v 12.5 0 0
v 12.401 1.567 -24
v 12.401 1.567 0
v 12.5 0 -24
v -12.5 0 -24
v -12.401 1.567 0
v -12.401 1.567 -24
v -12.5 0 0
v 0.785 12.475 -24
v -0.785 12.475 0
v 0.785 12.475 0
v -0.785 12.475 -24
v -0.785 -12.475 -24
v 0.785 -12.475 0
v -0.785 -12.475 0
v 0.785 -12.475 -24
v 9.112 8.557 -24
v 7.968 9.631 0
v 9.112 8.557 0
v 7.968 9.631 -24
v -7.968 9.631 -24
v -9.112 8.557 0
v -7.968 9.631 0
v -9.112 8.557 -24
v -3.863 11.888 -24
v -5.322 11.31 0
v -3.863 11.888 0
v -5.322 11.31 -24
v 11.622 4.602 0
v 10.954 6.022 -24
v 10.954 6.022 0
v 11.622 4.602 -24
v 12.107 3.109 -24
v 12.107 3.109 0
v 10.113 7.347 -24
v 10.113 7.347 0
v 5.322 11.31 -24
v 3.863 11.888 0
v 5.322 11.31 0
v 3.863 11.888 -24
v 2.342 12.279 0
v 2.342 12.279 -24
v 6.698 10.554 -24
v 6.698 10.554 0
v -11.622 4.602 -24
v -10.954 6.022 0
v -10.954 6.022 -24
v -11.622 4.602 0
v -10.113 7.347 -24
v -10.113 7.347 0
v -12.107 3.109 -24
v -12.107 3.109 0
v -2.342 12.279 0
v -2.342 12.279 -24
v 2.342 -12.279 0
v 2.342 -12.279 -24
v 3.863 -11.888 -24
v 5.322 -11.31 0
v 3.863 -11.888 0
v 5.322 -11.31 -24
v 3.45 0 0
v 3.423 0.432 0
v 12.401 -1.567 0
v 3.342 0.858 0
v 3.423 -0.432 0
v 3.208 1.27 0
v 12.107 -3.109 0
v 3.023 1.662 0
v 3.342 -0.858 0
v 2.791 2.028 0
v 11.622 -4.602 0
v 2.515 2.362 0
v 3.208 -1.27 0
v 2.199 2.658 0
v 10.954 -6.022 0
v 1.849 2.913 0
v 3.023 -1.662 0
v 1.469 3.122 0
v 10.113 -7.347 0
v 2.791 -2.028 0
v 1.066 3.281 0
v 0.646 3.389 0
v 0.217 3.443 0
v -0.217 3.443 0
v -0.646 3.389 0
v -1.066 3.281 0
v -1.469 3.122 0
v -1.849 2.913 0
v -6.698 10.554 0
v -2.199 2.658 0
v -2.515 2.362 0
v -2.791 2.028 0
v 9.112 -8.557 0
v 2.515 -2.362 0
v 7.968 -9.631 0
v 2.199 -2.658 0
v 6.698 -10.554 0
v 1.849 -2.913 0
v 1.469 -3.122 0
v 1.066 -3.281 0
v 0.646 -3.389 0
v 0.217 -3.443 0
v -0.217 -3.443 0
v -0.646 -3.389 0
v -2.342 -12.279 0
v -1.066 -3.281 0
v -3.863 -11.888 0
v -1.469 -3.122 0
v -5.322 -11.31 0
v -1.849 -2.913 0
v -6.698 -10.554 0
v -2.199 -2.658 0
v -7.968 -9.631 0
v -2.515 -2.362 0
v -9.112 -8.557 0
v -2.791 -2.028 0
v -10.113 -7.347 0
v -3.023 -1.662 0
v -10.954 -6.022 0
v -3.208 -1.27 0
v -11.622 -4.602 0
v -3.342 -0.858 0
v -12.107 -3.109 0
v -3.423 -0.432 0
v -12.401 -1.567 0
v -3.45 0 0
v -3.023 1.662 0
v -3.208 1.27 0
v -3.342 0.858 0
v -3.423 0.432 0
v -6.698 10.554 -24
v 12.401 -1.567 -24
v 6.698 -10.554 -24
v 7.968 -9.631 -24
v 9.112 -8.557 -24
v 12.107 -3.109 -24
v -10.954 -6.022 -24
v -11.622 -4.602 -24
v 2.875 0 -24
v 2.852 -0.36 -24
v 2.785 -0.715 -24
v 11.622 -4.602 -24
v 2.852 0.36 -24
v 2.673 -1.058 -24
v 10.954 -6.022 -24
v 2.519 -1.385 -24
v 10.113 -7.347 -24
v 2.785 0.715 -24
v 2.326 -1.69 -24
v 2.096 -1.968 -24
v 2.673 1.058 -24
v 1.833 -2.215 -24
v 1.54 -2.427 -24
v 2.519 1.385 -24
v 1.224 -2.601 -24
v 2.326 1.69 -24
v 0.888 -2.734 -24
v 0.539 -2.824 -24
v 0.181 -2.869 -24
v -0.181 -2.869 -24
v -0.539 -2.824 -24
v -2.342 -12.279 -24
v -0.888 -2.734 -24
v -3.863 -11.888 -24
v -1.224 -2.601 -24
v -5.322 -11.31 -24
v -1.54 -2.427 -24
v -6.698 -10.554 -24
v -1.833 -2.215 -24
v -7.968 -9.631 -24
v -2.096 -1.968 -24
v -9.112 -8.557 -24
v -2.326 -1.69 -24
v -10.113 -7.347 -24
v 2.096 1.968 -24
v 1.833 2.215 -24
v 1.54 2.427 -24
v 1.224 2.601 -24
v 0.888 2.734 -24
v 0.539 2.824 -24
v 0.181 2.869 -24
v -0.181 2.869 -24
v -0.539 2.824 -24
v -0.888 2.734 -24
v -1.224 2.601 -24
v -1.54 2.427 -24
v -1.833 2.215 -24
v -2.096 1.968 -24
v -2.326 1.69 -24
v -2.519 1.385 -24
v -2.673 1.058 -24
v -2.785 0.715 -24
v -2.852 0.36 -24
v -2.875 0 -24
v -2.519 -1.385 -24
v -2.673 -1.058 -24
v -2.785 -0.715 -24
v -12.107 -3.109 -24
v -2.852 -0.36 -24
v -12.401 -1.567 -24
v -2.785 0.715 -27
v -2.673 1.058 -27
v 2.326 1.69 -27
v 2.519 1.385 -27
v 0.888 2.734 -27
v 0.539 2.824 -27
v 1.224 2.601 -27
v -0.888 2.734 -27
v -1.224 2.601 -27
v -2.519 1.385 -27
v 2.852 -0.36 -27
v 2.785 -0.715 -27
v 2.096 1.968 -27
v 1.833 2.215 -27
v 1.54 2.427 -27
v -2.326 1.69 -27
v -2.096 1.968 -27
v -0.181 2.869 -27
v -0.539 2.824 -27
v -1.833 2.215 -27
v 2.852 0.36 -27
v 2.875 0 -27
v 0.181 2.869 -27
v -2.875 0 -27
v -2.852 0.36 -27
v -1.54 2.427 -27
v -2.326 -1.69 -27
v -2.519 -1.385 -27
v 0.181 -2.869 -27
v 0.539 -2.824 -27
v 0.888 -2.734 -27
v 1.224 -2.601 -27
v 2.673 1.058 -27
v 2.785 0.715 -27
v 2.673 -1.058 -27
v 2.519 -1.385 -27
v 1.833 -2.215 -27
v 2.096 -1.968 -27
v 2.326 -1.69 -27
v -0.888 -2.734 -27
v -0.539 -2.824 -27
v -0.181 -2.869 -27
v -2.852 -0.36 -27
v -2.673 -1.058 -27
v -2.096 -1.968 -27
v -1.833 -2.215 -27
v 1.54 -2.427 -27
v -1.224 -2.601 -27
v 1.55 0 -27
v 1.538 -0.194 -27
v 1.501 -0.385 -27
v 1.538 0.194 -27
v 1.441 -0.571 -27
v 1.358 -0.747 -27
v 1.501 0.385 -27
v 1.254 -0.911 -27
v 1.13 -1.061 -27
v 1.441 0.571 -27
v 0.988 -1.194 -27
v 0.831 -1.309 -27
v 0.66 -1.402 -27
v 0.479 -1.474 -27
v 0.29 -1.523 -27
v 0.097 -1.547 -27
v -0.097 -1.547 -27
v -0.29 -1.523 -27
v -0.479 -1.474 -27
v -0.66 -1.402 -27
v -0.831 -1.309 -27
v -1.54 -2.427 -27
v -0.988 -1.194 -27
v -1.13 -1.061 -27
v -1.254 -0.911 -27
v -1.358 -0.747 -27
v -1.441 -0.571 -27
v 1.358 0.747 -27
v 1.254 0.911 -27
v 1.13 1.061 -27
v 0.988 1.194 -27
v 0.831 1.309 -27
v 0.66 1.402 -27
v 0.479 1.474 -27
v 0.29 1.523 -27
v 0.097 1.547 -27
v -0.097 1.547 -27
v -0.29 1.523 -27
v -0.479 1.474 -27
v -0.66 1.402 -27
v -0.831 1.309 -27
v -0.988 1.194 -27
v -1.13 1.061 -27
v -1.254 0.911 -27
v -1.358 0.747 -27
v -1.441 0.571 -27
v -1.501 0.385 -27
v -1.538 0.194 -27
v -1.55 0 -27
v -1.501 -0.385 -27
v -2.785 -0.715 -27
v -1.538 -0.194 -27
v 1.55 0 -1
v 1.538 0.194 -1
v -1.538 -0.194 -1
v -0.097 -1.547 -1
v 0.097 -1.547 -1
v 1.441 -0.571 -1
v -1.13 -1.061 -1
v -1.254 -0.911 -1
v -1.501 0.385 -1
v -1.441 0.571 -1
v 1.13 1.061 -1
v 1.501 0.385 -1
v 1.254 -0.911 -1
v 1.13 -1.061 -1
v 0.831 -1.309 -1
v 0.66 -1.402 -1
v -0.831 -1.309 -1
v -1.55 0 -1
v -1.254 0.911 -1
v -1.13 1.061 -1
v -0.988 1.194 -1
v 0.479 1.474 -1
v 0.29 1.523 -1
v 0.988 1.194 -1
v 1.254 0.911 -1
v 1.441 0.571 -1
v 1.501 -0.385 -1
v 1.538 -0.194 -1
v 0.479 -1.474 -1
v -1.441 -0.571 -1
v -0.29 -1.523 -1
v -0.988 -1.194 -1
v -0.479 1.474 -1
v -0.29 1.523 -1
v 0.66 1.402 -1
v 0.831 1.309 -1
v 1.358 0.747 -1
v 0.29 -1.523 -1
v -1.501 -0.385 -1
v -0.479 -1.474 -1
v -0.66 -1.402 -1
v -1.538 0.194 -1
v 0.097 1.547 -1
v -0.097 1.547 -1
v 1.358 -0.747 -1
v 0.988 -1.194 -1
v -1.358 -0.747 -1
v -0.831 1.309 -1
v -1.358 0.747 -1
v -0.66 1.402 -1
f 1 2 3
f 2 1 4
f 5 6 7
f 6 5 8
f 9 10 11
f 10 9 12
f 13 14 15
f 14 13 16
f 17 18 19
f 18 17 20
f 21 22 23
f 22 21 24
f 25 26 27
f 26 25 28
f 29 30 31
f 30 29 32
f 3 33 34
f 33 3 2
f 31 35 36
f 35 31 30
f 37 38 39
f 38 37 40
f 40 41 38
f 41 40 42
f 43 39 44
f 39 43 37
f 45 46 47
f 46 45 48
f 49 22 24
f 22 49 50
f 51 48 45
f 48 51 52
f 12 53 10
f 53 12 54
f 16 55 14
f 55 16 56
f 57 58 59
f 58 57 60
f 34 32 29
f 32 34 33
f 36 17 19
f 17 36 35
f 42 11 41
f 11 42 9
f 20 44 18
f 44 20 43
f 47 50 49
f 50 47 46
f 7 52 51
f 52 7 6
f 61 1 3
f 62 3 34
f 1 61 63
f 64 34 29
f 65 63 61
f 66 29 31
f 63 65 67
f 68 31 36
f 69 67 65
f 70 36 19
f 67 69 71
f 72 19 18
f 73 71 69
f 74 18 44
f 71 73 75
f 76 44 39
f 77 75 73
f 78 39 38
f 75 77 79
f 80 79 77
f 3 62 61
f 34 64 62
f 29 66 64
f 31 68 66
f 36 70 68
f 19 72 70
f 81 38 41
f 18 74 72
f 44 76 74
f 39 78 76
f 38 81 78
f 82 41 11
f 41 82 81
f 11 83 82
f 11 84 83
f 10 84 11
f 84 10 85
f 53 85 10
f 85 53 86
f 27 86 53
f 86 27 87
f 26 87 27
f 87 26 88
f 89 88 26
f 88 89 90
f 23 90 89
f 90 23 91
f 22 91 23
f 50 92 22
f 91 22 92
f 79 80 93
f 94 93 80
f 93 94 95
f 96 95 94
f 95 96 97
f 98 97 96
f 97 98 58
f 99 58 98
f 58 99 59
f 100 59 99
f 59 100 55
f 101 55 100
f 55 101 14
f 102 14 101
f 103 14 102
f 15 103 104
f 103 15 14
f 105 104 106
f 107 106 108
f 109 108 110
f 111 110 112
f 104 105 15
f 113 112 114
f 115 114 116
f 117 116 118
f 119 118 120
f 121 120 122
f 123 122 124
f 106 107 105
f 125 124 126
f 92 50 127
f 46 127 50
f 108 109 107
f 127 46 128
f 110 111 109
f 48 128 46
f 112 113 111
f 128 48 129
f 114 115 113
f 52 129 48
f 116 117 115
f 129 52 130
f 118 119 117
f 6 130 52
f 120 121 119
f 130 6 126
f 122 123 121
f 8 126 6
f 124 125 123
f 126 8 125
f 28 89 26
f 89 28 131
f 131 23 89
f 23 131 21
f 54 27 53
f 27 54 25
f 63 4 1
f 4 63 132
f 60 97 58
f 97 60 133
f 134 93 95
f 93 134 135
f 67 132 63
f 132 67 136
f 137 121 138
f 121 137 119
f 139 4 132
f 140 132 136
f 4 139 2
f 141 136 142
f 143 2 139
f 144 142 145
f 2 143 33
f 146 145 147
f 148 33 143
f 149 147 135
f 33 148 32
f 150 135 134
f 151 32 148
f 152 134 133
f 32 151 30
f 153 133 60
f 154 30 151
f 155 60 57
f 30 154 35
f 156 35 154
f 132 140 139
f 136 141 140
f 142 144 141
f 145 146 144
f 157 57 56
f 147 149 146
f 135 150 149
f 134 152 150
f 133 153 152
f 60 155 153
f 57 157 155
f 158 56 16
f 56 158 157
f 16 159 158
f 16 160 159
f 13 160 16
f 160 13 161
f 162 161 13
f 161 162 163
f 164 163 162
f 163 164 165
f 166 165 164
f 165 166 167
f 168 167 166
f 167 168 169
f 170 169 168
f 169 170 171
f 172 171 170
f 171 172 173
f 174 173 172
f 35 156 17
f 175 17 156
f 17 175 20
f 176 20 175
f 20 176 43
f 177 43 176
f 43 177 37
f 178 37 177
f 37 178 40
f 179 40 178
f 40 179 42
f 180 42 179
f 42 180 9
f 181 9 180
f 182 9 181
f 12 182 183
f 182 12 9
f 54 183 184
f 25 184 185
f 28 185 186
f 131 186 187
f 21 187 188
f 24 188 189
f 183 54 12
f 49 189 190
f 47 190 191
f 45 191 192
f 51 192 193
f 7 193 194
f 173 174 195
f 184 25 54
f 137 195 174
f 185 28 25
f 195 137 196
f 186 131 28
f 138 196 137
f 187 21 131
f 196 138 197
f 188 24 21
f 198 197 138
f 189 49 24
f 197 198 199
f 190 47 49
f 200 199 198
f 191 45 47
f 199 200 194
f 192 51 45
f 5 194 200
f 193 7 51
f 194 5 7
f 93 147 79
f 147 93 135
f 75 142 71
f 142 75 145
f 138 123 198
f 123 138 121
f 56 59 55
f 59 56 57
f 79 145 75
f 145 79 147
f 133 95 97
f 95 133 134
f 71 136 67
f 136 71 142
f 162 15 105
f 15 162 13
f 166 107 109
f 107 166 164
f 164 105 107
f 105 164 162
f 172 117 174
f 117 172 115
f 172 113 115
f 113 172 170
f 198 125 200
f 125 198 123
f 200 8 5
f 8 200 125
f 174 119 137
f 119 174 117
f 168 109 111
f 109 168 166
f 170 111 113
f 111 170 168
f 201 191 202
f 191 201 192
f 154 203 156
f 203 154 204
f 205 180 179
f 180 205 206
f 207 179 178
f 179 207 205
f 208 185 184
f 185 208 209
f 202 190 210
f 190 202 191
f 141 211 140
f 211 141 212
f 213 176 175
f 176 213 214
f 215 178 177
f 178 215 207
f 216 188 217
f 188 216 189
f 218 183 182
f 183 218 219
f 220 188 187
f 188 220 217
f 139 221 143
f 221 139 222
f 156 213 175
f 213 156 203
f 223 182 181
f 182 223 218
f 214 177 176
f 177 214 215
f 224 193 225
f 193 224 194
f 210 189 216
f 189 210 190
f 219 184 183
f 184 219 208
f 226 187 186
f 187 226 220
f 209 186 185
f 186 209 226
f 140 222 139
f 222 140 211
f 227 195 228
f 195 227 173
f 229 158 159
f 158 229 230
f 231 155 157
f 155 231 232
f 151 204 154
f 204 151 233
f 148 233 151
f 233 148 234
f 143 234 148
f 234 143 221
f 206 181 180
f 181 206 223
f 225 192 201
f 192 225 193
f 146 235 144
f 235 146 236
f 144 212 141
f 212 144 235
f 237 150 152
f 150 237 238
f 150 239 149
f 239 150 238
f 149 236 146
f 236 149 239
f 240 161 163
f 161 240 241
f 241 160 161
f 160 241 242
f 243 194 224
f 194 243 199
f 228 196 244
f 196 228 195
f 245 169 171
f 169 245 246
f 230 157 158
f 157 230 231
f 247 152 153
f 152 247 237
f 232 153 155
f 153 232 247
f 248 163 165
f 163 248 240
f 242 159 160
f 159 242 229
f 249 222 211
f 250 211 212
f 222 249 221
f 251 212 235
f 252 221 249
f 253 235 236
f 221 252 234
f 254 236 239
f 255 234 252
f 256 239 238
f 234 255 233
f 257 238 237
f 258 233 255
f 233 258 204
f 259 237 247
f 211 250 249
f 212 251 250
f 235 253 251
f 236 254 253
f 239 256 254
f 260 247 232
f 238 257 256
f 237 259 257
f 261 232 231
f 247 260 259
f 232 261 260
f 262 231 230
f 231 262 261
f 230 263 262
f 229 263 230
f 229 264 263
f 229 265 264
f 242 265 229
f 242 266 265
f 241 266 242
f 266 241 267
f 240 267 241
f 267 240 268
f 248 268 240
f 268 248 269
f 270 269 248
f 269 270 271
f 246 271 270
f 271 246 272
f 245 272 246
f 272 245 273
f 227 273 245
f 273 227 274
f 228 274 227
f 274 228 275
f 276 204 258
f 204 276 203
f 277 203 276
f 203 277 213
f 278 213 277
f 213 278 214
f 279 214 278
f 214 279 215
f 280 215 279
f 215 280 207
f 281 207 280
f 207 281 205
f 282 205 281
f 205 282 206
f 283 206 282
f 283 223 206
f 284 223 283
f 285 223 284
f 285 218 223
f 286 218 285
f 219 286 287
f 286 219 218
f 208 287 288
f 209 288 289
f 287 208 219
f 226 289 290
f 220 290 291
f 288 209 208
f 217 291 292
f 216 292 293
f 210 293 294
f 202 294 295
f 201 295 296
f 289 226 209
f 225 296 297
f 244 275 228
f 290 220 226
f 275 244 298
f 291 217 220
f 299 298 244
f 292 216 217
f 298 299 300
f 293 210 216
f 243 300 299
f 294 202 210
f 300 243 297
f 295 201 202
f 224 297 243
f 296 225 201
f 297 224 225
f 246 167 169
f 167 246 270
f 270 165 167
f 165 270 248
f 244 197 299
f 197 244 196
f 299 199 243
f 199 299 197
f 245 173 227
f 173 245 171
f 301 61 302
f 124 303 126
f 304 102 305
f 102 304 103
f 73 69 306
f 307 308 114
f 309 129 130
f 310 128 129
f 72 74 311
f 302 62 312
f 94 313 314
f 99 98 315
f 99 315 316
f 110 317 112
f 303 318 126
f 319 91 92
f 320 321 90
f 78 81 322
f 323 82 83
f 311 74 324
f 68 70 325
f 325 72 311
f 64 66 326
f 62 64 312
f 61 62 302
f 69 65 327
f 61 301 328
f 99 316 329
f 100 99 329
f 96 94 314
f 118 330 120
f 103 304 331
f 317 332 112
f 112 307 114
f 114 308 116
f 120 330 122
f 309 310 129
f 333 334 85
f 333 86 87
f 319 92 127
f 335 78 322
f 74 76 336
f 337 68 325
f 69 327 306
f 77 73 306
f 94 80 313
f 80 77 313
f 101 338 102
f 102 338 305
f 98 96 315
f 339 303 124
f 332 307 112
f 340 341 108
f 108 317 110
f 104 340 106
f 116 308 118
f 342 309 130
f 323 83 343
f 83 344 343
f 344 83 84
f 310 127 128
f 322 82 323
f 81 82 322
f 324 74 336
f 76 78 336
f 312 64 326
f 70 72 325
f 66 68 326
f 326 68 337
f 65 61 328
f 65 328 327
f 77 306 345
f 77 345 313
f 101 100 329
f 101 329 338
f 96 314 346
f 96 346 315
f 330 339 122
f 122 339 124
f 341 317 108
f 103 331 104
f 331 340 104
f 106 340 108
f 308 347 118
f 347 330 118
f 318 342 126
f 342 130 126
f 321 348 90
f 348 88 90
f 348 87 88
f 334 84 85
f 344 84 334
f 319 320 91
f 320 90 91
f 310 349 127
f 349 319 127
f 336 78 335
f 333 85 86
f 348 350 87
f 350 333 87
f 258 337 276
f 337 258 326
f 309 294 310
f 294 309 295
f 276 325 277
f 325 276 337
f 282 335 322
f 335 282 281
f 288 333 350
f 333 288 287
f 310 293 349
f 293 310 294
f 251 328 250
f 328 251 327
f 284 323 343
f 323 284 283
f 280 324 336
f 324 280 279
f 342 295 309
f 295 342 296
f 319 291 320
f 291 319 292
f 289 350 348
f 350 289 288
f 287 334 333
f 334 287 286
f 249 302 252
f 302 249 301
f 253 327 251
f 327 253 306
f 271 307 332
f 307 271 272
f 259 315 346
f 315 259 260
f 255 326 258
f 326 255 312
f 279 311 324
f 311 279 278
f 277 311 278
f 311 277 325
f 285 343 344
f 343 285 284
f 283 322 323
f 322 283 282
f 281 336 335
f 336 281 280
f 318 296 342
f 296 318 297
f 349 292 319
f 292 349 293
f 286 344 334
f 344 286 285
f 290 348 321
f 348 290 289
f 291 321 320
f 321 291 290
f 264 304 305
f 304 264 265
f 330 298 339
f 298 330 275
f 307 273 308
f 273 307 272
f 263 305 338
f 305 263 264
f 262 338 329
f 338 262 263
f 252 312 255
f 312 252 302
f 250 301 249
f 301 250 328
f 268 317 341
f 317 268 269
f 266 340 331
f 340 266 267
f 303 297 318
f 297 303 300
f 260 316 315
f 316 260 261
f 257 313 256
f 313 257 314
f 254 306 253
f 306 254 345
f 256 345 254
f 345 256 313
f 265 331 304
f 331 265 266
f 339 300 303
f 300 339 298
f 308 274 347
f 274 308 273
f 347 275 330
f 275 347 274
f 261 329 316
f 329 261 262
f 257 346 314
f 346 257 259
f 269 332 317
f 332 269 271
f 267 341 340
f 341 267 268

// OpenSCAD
$fn = 50;

difference() {
	union() {
		translate(v = [0, 0, -24.0]) {
			cylinder(h = 24, r = 12.5);
		}
		#translate(v = [0, 0, -27.0]) {
			cylinder(h = 27, r = 2.875);
		}
	}
	union() {
		translate(v = [0, 0, 0]) {
			rotate(a = [0, 0, 0]) {
				difference() {
					union() {
						translate(v = [0, 0, -27.0]) {
							cylinder(h = 27, r = 1.25);
						}
						translate(v = [0, 0, -1.0]) {
							cylinder(h = 1.0, r1 = 1.55, r2 = 3.45);
						}
						translate(v = [0, 0, -27.0]) {
							cylinder(h = 27, r = 1.55);
						}
						translate(v = [0, 0, -27.0]) {
							cylinder(h = 27, r = 1.25);
						}
					}
					union();
				}
			}
		}
	}
}
